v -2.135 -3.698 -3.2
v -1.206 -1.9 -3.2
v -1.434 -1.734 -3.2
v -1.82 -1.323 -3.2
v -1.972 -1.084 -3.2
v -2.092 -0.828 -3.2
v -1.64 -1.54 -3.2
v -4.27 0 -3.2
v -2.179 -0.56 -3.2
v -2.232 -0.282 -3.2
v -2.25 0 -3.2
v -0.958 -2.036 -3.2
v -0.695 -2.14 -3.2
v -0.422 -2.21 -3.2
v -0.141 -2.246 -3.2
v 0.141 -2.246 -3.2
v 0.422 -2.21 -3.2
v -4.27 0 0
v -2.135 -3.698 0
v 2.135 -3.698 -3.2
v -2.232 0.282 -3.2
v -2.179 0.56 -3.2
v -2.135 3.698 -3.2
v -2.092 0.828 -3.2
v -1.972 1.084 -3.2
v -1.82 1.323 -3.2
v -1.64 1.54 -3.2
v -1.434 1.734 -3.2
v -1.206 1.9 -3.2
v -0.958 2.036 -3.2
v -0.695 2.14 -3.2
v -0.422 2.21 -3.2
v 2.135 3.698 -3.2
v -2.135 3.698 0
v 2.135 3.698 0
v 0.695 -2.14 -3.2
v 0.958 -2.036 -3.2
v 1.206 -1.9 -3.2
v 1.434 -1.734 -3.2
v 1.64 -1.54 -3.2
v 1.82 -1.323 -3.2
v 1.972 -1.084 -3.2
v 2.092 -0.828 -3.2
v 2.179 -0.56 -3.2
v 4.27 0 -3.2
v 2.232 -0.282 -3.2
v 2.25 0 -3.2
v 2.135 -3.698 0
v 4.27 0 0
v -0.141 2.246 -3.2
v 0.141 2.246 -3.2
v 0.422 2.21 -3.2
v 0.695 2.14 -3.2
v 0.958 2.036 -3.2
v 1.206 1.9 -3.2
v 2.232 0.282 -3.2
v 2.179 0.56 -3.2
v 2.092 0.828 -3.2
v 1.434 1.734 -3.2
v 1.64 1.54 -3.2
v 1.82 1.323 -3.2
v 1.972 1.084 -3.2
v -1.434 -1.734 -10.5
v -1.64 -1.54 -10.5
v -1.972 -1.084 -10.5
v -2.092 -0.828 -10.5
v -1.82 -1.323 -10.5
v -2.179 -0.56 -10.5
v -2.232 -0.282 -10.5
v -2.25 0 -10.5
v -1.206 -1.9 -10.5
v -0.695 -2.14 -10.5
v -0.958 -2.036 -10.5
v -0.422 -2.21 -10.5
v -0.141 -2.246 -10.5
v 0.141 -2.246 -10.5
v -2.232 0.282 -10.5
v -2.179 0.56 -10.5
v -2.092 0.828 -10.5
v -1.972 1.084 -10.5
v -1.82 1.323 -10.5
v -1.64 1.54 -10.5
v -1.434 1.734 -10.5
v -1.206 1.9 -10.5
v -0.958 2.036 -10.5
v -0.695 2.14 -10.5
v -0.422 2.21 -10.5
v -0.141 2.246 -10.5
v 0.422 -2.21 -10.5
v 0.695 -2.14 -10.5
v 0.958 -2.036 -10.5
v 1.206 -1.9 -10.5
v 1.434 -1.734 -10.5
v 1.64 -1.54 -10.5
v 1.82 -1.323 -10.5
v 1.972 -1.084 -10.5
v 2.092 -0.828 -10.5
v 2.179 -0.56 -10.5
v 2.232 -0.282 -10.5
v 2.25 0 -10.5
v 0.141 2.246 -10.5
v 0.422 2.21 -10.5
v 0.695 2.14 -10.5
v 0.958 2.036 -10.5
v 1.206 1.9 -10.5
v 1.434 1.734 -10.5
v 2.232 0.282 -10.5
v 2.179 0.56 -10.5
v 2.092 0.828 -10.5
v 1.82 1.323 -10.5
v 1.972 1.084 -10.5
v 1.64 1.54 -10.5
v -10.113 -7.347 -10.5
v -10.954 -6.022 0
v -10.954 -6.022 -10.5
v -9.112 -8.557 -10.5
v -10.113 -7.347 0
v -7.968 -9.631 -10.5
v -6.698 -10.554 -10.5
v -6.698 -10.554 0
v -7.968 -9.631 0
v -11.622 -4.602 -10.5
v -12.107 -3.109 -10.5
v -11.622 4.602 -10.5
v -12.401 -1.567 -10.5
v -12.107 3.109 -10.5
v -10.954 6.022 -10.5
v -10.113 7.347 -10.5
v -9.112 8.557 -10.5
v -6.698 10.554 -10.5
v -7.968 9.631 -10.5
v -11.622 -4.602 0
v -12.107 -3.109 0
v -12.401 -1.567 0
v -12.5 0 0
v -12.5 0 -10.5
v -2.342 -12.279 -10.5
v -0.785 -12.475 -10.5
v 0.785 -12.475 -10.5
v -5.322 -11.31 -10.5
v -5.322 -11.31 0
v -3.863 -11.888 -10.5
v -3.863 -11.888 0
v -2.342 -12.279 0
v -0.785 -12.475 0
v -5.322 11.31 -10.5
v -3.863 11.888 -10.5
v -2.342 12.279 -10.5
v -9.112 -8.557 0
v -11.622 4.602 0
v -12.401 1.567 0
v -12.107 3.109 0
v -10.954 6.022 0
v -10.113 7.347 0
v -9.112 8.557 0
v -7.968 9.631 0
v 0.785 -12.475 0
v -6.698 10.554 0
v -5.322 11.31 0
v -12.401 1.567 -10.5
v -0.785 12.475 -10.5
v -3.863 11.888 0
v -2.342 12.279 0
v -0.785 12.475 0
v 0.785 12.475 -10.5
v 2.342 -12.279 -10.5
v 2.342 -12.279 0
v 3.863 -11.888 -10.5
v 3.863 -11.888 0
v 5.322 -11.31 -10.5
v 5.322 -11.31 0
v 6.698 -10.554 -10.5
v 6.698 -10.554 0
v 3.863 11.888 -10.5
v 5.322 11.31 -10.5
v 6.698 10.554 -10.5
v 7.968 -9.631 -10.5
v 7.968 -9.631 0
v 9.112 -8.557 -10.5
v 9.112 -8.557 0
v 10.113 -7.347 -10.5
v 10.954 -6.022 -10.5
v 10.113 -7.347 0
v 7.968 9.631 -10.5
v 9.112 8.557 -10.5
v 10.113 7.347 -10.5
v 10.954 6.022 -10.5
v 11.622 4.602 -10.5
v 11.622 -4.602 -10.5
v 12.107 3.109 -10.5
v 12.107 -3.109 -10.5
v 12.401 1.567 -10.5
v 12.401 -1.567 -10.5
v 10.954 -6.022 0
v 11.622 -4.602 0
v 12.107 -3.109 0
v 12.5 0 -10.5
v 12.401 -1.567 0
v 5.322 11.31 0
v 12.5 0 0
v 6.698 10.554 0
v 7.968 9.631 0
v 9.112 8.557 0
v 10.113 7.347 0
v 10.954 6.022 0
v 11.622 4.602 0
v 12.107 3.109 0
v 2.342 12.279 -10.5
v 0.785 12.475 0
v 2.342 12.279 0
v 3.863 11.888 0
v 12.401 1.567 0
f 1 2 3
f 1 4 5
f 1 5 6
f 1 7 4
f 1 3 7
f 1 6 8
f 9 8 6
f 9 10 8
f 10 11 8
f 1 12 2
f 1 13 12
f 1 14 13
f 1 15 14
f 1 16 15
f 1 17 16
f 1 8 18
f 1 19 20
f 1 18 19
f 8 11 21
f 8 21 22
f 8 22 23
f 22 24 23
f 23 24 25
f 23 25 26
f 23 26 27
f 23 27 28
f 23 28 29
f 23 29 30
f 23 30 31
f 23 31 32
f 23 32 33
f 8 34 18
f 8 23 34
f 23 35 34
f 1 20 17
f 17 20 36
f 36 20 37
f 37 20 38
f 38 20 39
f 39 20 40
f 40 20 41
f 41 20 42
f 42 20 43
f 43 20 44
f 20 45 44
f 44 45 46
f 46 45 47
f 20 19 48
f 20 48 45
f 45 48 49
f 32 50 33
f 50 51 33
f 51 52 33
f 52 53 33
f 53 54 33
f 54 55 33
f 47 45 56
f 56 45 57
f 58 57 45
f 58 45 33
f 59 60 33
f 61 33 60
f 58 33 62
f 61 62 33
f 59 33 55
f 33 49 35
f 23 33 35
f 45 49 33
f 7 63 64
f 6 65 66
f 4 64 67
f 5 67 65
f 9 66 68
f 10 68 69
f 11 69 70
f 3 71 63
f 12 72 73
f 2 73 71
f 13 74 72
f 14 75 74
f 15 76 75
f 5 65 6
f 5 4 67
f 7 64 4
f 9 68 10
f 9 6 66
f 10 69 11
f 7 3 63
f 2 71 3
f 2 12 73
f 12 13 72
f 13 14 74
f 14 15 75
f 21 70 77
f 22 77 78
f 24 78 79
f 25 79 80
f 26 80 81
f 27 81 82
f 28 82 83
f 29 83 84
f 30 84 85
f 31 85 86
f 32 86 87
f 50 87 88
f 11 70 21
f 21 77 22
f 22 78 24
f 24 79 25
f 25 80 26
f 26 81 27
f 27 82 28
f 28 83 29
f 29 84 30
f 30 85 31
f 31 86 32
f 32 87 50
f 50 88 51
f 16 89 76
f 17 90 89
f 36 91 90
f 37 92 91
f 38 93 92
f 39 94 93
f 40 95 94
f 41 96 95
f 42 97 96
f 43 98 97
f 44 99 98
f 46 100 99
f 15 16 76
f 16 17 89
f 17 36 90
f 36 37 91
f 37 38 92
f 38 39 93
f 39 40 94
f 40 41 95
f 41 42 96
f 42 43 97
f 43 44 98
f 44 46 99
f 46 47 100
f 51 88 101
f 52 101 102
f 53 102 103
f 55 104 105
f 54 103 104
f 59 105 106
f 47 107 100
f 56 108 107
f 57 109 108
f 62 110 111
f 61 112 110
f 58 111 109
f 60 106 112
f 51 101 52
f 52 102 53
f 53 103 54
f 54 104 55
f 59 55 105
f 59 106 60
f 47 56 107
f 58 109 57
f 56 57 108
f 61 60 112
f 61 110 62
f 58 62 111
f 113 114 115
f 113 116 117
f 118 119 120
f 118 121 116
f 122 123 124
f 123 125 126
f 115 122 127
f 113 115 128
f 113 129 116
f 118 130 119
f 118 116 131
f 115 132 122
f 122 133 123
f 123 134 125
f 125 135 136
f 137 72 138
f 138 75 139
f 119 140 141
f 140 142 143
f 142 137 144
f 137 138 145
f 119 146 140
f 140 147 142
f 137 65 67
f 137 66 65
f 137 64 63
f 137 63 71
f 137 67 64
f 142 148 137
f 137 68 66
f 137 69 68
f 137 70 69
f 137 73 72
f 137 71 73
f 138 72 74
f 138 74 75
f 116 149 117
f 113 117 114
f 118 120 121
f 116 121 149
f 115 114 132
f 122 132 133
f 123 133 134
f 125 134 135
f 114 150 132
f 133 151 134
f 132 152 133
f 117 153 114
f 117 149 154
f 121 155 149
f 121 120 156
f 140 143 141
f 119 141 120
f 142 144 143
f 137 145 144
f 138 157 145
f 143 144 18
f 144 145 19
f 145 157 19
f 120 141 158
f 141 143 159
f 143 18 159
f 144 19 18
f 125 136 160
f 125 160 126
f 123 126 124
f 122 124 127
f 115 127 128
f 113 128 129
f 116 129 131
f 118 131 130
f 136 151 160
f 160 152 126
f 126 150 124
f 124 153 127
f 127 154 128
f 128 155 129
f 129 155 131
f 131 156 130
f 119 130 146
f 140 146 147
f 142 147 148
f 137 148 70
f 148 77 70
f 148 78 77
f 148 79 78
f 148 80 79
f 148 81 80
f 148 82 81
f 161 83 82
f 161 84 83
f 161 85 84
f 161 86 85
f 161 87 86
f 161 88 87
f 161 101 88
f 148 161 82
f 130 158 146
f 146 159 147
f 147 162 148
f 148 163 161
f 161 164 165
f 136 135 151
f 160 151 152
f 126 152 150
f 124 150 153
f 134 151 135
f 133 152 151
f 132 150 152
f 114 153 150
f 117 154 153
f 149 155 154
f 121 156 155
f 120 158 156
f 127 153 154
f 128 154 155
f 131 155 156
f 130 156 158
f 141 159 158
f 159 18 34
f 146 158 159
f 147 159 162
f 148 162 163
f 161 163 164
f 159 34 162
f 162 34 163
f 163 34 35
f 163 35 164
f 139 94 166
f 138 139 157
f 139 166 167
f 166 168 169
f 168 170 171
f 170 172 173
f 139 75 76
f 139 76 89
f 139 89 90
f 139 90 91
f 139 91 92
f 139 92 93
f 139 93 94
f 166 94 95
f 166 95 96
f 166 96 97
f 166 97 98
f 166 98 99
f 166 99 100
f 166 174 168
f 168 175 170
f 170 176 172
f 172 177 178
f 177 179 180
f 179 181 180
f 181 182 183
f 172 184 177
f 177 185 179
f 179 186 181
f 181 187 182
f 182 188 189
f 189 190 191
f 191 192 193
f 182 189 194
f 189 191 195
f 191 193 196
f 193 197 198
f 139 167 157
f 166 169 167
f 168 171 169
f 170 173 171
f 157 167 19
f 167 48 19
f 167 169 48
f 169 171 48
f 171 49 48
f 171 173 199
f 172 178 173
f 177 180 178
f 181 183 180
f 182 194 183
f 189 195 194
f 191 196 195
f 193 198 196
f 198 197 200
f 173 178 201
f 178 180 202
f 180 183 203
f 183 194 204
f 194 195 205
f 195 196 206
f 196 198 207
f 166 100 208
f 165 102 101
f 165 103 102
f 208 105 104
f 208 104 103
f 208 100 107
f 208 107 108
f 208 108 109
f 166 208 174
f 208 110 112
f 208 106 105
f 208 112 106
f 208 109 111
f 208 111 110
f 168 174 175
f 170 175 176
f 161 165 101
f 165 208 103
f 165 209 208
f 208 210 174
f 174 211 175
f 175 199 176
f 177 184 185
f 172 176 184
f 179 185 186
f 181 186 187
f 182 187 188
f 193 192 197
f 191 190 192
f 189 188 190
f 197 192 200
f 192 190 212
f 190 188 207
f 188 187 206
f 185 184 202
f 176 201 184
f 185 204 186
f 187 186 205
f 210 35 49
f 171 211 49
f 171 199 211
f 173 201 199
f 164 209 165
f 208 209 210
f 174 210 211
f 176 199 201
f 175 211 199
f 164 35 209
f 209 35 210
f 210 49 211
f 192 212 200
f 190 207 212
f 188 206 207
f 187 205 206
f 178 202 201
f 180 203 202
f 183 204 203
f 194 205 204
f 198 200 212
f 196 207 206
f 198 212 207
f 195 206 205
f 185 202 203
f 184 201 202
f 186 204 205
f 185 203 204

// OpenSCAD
$fn = 50;

difference() {
	union() {
		translate(v = [0, 0, -10.5]) {
			cylinder(h = 10.5, r = 12.5);
		}
	}
	union() {
		translate(v = [0, 0, 0]) {
			rotate(a = [0, 0, 0]) {
				difference() {
					union() {
						translate(v = [0, 0, -3.2]) {
							linear_extrude(height = 3.2) {
								polygon(points = [[4.2698, 0.0], [2.1349000000000005, 3.697755269078796], [-2.134899999999999, 3.6977552690787965], [-4.2698, 5.228996902999369e-16], [-2.134900000000002, -3.6977552690787956], [2.1348999999999974, -3.697755269078798]]);
							}
						}
					}
					union();
				}
			}
		}
		#translate(v = [0, 0, -100.0]) {
			cylinder(h = 200, r = 2.25);
		}
	}
}
